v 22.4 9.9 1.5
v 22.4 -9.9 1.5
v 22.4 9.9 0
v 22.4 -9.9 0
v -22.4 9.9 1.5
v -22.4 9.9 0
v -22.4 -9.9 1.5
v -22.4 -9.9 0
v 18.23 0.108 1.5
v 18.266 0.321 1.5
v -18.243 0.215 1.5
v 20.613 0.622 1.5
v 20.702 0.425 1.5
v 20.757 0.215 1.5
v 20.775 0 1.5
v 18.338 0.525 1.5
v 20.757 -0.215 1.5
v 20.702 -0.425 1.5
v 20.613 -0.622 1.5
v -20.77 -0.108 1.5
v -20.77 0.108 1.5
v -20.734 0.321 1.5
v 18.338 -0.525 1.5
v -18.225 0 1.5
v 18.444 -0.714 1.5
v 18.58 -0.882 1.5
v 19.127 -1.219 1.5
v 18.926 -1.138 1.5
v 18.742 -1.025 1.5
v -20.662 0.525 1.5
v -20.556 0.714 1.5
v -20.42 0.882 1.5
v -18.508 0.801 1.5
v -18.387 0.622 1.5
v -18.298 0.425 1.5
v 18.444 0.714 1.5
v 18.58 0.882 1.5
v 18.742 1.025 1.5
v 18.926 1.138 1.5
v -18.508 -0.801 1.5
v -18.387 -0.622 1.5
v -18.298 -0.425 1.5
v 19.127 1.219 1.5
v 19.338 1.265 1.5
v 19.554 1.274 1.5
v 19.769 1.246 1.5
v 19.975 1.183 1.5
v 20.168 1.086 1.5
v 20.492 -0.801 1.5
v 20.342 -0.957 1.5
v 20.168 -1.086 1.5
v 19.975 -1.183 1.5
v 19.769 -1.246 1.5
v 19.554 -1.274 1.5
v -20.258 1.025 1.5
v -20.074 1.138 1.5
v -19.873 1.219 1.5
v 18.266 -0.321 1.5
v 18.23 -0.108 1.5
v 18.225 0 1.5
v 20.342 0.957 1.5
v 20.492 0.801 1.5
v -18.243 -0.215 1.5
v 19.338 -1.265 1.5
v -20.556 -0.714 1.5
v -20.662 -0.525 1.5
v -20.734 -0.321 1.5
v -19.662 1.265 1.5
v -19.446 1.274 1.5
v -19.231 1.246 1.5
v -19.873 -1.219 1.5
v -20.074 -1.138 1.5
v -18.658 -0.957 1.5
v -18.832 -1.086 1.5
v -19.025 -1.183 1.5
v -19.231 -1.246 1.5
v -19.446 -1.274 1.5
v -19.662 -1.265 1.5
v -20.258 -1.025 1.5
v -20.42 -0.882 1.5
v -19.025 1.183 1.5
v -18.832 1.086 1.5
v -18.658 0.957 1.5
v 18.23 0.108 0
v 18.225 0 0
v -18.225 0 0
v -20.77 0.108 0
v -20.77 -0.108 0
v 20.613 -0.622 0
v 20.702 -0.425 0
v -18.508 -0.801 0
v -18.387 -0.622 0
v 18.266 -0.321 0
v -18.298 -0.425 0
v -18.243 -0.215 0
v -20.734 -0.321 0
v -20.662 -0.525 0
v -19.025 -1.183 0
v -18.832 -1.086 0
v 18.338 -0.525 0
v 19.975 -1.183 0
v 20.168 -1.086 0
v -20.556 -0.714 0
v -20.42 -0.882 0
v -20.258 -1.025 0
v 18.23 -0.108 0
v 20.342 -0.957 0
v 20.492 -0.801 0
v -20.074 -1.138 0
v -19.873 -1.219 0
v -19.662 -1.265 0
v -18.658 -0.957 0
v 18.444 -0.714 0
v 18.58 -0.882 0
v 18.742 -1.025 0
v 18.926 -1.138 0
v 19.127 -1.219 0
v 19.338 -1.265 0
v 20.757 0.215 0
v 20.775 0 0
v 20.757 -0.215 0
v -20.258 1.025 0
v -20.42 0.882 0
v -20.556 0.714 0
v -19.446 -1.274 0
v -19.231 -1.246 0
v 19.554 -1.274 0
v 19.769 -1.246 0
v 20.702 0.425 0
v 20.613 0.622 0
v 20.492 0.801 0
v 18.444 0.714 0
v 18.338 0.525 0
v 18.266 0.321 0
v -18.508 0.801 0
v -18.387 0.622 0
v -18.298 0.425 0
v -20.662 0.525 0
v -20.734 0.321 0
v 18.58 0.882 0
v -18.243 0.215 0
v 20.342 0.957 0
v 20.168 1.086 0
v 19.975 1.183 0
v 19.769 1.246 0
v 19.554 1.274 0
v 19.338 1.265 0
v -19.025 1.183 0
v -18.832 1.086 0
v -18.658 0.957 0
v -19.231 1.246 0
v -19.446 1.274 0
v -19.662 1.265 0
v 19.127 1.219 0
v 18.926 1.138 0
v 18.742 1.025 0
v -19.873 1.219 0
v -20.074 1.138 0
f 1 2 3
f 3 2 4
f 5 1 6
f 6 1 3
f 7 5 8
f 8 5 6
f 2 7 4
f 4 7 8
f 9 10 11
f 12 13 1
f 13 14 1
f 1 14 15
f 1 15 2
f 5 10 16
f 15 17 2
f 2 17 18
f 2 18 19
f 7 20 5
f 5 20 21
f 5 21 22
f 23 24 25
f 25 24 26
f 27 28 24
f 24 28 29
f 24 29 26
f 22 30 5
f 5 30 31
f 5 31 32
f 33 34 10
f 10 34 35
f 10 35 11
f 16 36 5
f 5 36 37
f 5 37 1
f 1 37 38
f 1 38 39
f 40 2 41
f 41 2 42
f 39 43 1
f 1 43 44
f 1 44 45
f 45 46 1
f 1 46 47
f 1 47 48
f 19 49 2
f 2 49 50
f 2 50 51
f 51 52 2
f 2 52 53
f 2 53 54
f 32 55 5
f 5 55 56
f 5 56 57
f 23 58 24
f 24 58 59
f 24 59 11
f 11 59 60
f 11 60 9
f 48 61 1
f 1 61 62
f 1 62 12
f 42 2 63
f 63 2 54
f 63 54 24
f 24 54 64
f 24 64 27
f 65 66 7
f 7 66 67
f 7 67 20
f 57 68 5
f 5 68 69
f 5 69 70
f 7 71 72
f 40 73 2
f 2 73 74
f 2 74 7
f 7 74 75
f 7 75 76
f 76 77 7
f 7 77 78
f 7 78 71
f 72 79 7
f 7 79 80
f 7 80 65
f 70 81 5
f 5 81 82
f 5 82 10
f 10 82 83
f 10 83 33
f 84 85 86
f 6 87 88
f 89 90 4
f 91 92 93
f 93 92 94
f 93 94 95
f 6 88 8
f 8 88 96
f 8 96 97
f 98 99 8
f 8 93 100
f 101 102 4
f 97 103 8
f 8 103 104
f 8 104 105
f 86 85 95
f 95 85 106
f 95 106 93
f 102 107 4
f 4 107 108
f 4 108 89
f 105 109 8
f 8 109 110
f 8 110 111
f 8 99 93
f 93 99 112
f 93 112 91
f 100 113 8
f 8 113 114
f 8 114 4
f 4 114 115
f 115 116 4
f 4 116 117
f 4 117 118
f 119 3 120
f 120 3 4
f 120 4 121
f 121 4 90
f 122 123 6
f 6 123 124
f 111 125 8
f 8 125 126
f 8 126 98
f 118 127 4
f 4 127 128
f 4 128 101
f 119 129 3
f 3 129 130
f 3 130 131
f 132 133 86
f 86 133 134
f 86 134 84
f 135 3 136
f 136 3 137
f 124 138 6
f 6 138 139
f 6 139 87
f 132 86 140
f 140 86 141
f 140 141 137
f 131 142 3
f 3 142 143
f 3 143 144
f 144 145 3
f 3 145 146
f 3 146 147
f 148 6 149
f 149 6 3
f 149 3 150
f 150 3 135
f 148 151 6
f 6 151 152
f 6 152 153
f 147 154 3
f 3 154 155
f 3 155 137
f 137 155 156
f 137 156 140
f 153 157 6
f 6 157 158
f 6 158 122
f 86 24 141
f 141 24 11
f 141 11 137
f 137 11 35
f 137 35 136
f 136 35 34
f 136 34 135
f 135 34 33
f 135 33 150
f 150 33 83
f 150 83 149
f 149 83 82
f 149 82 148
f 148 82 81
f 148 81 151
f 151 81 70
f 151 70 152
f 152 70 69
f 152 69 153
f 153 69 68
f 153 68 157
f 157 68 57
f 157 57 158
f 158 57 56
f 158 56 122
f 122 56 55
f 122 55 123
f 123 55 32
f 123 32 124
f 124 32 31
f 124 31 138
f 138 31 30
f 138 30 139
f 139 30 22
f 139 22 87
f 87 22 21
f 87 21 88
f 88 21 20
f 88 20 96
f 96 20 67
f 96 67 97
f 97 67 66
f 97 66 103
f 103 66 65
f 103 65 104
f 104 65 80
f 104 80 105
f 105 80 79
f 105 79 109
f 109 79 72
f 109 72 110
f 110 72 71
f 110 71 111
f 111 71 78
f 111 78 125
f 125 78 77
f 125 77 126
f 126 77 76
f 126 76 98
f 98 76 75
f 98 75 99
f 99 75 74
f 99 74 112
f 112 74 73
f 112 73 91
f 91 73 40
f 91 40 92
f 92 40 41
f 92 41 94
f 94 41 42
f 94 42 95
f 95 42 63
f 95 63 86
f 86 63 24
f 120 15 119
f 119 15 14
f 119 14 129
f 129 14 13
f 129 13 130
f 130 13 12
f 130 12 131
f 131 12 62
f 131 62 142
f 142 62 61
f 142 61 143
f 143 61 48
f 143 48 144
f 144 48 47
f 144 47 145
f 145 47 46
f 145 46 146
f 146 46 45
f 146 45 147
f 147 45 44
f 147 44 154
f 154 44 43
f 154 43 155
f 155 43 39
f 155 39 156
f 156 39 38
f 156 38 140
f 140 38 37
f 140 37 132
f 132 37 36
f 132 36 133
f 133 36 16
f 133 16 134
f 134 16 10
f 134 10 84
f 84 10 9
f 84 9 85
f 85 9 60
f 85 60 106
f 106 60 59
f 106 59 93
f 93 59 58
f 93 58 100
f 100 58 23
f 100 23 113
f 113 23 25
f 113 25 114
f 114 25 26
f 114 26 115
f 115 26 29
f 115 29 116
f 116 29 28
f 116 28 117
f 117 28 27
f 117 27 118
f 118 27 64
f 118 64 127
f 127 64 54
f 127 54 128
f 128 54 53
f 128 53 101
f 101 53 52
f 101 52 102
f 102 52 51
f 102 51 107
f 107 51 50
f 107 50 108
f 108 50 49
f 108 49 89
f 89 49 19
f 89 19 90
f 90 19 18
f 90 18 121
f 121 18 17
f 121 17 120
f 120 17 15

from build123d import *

# Parameters (mm, degrees)
SKETCH2_W           = 44.8
SKETCH2_H           = 19.8
BOSS_EXTRUDE1_DEPTH = 1.5
SKETCH3_R           = 1.275
CUT_EXTRUDE1_DEPTH  = 25.536095859


with BuildPart() as part:
    # Sketch2 → Boss-Extrude1 (new body)
    with BuildSketch(Plane.XY):
        Rectangle(SKETCH2_W, SKETCH2_H)
    extrude(amount=BOSS_EXTRUDE1_DEPTH)

    # Sketch3 → Cut-Extrude1 (cut, through all)
    with BuildSketch(Plane.XY.offset(1.5)):
        with Locations((-19.5, 0)):
            Circle(SKETCH3_R)
    cut_extrude1 = extrude(amount=-CUT_EXTRUDE1_DEPTH, mode=Mode.SUBTRACT)

    # Mirror1: Cut-Extrude1 across plane
    add(cut_extrude1.mirror(Plane(origin=(0, 0, 0), x_dir=(0, 0, 1), z_dir=(1, 0, 0))), mode=Mode.SUBTRACT)


solid = part.part
